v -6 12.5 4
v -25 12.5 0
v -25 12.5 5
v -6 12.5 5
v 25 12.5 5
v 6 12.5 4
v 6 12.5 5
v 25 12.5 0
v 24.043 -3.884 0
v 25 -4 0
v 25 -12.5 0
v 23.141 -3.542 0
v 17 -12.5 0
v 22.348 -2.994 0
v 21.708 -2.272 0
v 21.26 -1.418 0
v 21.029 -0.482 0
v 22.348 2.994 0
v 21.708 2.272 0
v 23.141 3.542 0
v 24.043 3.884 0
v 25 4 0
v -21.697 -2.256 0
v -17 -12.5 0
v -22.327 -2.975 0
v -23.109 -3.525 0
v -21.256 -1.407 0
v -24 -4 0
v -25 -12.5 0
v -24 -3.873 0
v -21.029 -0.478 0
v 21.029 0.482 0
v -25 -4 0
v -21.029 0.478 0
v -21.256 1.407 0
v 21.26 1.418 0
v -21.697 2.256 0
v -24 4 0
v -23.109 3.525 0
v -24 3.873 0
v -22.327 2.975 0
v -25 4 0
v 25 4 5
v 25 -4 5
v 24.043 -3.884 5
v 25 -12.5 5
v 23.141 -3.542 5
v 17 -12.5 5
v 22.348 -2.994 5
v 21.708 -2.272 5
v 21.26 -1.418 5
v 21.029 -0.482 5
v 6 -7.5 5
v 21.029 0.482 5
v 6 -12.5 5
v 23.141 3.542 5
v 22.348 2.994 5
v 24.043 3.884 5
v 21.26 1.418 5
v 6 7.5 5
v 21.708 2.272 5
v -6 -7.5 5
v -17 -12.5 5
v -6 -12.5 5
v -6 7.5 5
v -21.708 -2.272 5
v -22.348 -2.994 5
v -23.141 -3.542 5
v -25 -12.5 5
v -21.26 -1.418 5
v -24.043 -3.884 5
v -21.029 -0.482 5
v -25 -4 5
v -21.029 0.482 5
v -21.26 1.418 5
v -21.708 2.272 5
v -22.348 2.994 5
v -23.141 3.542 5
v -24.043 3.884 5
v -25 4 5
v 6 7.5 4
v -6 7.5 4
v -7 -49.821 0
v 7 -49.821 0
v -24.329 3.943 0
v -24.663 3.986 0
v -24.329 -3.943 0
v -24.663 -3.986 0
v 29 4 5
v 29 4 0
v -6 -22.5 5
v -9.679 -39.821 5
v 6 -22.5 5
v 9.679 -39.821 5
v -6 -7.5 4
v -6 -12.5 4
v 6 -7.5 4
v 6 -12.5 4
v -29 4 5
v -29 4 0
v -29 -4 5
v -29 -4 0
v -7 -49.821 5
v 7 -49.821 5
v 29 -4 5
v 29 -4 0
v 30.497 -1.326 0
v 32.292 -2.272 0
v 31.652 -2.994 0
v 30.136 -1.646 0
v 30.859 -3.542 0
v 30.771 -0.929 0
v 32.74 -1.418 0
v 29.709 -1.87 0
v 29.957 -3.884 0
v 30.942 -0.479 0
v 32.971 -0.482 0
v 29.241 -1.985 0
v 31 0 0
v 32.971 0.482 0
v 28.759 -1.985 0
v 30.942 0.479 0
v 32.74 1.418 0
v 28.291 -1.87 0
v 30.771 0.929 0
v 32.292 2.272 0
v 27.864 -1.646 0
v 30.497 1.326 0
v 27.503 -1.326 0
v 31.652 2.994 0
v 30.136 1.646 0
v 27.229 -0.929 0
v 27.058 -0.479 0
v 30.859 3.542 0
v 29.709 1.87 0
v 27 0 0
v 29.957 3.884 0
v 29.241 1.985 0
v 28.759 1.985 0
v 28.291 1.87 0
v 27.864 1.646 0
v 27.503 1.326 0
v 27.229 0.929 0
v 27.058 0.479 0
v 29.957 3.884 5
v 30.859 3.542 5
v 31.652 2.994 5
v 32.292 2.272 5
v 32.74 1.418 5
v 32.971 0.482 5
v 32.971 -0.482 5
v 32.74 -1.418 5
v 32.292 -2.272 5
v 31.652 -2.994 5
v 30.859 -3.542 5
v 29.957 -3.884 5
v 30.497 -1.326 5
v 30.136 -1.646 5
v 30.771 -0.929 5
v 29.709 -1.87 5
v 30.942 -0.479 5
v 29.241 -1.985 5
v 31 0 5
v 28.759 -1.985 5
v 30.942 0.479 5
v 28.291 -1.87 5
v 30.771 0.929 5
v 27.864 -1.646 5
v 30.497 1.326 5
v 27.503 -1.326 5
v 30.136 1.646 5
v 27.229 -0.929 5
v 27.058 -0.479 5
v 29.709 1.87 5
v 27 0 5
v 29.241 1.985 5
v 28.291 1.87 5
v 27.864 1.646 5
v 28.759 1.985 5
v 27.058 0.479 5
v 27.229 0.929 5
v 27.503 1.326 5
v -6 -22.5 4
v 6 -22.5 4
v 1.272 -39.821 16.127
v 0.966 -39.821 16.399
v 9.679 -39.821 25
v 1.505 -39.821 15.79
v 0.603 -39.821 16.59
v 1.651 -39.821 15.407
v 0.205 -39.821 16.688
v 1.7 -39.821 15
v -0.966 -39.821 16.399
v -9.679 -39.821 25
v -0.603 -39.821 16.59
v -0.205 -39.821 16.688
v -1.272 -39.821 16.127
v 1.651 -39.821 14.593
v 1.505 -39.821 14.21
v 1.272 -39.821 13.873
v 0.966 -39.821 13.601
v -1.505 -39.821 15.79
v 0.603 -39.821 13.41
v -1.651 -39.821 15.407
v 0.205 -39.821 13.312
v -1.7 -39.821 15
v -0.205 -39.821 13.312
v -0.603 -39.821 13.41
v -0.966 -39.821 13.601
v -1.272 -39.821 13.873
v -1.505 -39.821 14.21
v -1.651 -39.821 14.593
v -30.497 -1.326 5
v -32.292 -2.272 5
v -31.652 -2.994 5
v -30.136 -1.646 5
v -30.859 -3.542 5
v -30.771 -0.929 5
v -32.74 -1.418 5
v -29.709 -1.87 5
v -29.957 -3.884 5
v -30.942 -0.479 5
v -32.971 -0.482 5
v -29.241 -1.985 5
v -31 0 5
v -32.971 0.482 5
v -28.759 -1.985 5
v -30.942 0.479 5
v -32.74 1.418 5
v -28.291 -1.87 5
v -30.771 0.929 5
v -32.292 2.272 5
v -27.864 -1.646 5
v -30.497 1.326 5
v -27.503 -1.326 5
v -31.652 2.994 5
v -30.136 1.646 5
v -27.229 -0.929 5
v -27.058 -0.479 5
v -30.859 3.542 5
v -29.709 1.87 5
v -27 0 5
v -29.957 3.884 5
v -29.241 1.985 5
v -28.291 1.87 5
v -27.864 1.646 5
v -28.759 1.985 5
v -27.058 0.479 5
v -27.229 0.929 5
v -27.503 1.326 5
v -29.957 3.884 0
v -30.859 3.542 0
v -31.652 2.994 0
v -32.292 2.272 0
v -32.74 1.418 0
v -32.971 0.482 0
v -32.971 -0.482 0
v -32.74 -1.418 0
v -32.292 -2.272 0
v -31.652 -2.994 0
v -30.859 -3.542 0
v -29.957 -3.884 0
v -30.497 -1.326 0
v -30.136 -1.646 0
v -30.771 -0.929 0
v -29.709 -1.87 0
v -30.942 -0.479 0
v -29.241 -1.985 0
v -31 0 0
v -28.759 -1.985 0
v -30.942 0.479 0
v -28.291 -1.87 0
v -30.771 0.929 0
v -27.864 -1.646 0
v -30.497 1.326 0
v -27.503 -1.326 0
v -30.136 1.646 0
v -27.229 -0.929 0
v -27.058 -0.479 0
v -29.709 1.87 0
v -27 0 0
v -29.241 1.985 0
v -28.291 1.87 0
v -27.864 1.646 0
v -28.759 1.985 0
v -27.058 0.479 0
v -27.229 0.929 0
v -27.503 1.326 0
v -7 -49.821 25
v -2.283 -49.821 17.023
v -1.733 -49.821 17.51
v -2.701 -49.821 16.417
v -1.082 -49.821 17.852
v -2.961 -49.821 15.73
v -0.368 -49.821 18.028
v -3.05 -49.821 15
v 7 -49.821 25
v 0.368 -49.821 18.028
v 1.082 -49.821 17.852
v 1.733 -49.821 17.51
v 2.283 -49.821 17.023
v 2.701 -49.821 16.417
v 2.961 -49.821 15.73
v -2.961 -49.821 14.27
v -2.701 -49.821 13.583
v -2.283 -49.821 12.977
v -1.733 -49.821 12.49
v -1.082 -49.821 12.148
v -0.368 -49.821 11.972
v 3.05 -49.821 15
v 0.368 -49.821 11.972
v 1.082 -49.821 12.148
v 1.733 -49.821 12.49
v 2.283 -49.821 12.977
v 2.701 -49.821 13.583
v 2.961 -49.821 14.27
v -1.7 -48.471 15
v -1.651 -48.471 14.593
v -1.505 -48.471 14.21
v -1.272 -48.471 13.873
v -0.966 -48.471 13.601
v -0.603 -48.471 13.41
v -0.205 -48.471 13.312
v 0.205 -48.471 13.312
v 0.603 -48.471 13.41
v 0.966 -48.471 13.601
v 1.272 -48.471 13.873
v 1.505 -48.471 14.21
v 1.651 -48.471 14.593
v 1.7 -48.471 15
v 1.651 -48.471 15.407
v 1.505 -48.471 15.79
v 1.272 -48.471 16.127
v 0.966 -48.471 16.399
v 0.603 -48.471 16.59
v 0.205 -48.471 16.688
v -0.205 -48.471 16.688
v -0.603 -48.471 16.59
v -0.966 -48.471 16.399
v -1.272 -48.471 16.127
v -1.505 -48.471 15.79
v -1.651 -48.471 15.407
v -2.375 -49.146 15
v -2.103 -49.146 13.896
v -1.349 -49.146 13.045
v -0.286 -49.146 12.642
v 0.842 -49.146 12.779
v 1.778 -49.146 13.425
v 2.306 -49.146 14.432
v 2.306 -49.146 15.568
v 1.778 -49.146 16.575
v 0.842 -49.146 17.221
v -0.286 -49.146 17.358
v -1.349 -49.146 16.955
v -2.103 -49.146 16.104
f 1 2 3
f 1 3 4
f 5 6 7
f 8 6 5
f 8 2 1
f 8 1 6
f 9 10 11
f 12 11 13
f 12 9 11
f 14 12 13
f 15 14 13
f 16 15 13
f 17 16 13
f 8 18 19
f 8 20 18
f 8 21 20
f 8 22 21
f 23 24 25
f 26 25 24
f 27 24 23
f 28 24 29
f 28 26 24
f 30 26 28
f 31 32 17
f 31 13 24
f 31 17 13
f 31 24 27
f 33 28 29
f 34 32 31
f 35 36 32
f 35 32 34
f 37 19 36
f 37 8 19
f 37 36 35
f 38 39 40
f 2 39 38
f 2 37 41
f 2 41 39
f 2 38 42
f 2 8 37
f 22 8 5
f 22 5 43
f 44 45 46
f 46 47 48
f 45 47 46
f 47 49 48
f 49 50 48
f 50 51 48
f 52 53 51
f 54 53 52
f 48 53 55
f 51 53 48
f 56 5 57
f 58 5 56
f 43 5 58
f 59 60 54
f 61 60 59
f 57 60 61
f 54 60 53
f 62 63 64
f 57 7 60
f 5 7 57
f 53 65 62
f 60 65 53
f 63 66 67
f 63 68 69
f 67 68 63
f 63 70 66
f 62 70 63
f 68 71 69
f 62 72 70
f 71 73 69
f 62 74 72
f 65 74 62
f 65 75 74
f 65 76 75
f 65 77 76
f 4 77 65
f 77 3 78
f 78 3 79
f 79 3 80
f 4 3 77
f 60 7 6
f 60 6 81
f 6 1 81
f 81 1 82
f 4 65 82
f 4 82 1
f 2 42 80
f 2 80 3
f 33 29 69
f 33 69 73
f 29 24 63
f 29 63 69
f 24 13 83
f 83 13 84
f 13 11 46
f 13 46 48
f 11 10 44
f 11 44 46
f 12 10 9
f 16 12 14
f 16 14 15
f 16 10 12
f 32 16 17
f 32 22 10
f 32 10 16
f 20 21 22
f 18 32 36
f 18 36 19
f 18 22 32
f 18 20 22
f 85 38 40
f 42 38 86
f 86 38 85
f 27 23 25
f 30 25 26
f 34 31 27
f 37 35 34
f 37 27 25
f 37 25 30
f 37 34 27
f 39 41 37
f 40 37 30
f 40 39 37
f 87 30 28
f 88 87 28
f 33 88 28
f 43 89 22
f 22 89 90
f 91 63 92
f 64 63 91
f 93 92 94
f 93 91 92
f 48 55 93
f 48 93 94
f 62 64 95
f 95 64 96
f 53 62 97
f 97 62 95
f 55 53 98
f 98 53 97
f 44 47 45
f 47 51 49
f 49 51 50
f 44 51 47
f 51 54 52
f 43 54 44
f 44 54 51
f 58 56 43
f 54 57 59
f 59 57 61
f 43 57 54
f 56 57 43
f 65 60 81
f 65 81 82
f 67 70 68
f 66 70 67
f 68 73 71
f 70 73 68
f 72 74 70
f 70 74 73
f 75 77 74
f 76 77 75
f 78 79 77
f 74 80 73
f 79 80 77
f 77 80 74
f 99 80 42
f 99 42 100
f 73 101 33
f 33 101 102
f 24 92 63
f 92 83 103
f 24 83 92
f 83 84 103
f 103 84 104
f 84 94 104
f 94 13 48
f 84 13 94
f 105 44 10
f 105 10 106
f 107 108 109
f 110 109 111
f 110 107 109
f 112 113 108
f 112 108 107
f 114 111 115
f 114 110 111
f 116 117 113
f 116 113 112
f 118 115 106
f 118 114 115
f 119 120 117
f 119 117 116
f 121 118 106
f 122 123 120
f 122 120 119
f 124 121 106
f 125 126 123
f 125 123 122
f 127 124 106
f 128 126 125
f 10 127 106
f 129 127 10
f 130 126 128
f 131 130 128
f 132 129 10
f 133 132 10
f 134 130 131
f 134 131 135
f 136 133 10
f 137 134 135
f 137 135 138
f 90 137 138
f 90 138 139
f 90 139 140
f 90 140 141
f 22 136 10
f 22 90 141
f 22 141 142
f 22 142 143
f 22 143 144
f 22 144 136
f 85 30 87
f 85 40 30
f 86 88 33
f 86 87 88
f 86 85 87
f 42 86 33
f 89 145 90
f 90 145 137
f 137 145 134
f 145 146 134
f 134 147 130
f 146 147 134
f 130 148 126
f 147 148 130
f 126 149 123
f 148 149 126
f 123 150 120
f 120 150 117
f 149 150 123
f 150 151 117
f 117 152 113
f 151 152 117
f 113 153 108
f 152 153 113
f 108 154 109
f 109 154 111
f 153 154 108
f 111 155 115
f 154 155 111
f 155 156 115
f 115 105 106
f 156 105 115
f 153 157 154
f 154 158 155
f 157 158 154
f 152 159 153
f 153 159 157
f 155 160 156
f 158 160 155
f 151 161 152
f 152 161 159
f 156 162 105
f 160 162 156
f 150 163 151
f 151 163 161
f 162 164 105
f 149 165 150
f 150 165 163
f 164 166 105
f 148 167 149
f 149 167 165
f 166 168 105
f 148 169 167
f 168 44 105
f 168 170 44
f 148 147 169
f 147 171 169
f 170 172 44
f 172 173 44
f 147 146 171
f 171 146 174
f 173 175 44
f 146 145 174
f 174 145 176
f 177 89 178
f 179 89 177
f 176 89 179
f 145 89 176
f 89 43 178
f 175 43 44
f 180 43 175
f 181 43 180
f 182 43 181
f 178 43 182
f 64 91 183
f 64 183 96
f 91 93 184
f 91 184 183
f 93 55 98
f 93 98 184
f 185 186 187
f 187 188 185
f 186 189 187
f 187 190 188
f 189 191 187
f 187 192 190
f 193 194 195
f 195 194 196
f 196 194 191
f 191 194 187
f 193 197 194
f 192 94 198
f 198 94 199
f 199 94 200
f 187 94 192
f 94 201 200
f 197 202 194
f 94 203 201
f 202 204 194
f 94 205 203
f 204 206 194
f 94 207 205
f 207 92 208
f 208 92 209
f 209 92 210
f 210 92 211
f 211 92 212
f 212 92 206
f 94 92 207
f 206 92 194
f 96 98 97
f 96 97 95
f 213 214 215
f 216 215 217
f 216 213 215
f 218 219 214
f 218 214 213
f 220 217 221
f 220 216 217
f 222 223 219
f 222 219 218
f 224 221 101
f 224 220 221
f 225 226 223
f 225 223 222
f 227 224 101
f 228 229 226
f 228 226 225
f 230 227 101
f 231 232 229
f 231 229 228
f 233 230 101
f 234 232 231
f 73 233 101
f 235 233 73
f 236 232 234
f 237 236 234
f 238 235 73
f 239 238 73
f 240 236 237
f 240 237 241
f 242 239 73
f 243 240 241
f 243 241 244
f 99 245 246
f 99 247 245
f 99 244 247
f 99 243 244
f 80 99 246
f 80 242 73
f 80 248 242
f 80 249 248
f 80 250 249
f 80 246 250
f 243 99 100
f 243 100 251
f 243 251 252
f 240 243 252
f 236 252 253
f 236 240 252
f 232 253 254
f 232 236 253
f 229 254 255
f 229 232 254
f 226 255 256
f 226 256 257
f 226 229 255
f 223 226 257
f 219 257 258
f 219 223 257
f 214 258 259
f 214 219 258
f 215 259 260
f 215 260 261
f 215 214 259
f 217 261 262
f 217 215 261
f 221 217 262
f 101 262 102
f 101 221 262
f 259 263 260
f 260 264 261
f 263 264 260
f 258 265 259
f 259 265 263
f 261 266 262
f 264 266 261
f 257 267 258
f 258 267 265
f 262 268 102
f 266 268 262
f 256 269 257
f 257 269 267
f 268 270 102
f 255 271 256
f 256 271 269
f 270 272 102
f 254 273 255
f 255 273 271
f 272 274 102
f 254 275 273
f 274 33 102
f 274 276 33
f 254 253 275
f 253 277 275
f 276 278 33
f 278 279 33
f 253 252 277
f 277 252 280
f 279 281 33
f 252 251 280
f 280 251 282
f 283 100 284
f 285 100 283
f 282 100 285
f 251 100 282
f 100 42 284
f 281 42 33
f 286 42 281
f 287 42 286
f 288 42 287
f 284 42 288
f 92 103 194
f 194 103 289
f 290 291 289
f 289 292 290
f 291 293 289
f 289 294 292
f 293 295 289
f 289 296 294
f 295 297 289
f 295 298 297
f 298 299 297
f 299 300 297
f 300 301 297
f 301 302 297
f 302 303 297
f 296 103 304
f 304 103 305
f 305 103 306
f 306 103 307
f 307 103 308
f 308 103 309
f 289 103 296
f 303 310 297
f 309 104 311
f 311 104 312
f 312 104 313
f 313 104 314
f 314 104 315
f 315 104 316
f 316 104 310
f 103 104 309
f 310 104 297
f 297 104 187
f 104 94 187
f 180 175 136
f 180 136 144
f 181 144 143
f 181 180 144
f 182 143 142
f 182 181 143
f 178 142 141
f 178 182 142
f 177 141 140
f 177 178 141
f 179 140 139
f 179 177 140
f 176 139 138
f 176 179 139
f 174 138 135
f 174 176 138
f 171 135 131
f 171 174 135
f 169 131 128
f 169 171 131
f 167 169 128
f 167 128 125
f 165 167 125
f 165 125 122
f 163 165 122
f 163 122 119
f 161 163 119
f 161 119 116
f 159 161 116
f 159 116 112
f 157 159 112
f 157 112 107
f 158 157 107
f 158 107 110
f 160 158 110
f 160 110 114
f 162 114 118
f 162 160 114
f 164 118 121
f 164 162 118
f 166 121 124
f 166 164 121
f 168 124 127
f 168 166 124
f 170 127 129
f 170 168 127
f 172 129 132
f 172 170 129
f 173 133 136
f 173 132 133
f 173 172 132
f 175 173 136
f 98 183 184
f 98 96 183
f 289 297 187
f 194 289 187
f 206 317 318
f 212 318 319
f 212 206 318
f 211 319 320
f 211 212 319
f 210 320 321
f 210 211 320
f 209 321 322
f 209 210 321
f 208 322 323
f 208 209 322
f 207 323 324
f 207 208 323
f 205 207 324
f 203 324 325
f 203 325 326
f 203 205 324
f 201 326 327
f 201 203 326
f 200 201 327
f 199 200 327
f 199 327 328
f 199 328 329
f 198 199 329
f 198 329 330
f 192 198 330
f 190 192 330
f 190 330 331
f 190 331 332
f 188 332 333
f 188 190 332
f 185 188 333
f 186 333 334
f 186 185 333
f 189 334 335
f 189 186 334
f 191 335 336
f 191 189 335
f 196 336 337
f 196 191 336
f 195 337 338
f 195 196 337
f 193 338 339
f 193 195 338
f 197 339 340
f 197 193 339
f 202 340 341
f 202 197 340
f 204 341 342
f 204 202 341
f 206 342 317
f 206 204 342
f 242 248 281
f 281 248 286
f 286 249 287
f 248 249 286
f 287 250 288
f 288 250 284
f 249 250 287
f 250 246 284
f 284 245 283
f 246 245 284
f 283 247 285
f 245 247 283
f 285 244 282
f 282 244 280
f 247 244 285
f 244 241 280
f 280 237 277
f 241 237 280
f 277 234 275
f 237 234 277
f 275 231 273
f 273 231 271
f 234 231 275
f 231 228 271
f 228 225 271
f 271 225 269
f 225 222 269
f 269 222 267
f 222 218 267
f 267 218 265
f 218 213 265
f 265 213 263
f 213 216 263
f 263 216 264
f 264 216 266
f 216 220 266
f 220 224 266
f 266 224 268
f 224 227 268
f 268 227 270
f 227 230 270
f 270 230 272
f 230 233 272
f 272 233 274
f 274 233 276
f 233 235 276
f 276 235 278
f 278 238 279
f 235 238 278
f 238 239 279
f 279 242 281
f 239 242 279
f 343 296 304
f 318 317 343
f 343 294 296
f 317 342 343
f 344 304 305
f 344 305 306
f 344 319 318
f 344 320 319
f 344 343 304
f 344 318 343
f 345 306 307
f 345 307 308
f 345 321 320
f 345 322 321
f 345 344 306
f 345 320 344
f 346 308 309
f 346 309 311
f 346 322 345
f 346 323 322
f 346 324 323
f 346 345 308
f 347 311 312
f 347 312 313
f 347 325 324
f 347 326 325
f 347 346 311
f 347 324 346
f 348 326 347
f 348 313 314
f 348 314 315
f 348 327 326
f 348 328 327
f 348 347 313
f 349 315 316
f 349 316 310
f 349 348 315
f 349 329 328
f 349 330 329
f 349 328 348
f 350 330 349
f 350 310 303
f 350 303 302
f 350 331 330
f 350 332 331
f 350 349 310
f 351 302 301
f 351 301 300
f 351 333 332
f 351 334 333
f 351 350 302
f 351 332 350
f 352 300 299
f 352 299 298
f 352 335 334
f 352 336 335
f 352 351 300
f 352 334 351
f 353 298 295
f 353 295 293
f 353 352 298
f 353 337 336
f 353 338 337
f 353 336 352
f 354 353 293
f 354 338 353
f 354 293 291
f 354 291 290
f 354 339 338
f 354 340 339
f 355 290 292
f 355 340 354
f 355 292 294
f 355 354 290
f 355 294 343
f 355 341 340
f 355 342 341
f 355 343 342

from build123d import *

# Parameters (mm, degrees)
SKETCH_W         = 50
SKETCH_H         = 25
PAD_DEPTH        = 5
PAD001_DEPTH     = 5
SKETCH002_R      = 2
POCKET_DEPTH     = 131.713272
SKETCH004_W      = 12
SKETCH004_H      = 5
POCKET001_DEPTH  = 1
PAD002_DEPTH     = 5
SKETCH008_W      = 8
SKETCH008_H      = 10
POCKET002_DEPTH  = 1
SKETCH009_W      = 12
SKETCH009_H      = 10
POCKET003_DEPTH  = 1
PAD003_DEPTH     = 20
HOLE_D           = 3.4
HOLE_DEPTH       = 25
HOLE_CSINK_D     = 6.1
HOLE_CSINK_ANGLE = 90
HOLE_TIPS_R      = 1.7


with BuildPart() as part:
    # Sketch → Pad (new body)
    with BuildSketch(Plane.XY):
        Rectangle(SKETCH_W, SKETCH_H)
    extrude(amount=PAD_DEPTH)

    # Sketch001 (on Face6 of Pad) → Pad001 (join)
    with BuildSketch(Plane.XY.offset(5)):
        with BuildLine():
            ThreePointArc((-25, -4), (-21, 0), (-25, 4))
            Line((-25, 4), (-29, 4))
            ThreePointArc((-29, 4), (-33, 0), (-29, -4))
            Line((-25, -4), (-29, -4))
        make_face()
    pad001 = extrude(amount=-PAD001_DEPTH)

    # Sketch002 (on Face12 of Pad001) → Pocket (cut, through all)
    with BuildSketch(Plane.XY.offset(5)):
        with Locations((-29, 0)):
            Circle(SKETCH002_R)
    pocket = extrude(amount=-POCKET_DEPTH, mode=Mode.SUBTRACT)

    # Mirrored: Pad001 across Sketch001 V_Axis
    add(pad001.mirror(Plane(origin=(0, 0, 5), x_dir=(0, 0, 1), z_dir=(1, 0, 0))))

    # Mirrored001: Pocket across Sketch002 V_Axis
    add(pocket.mirror(Plane(origin=(0, 0, 5), x_dir=(0, 0, 1), z_dir=(1, 0, 0))), mode=Mode.SUBTRACT)

    # Sketch004 (on Face5 of Mirrored001) → Pocket001 (cut)
    with BuildSketch(Plane.XY.offset(5)):
        with Locations((0, 10)):
            Rectangle(SKETCH004_W, SKETCH004_H)
    pocket001 = extrude(amount=-POCKET001_DEPTH, mode=Mode.SUBTRACT)

    # Mirrored002: Pocket001 across Sketch004 H_Axis
    add(pocket001.mirror(Plane(origin=(0, 0, 5), x_dir=(0, 0, 1), z_dir=(0, 1, 0))), mode=Mode.SUBTRACT)

    # Sketch005 (on Face2 of Mirrored002) → Pad002 (join)
    with BuildSketch(Plane(origin=(0, 0, 0), x_dir=(1, 0, 0), z_dir=(0, 0, -1))):
        Polygon((-17, 12.5), (-7, 49.820508), (7, 49.820508), (17, 12.5), align=None)
    extrude(amount=-PAD002_DEPTH)

    # Sketch008 → Pocket002 (cut)
    with BuildSketch(Plane(origin=(-25, 0, 0), x_dir=(0, -1, 0), z_dir=(-1, 0, 0))):
        with Locations((0, -5)):
            Rectangle(SKETCH008_W, SKETCH008_H)
    extrude(amount=-POCKET002_DEPTH, mode=Mode.SUBTRACT)

    # Sketch009 (on Face17 of Pad002) → Pocket003 (cut)
    with BuildSketch(Plane.XY.offset(5)):
        with Locations((0, -17.5)):
            Rectangle(SKETCH009_W, SKETCH009_H)
    extrude(amount=-POCKET003_DEPTH, mode=Mode.SUBTRACT)

    # Sketch010 (on Face19 of Pocket003) → Pad003 (join)
    with BuildSketch(Plane.XY.offset(5)):
        Polygon((-7, -49.820508), (7, -49.820508), (9.679492, -39.820508), (-9.679492, -39.820508), align=None)
    extrude(amount=PAD003_DEPTH)

    # Hole
    with Locations(Plane.XZ.offset(49.820508)):
        with Locations((0, 15)):
            CounterSinkHole(HOLE_D / 2, HOLE_CSINK_D / 2, depth=HOLE_DEPTH, counter_sink_angle=HOLE_CSINK_ANGLE)

    # Hole tips → Hole tip 1 section 0
    with BuildSketch(Plane.XZ.offset(24.820508), mode=Mode.PRIVATE) as hole_tip_1_s0:
        with Locations((0, 15)):
            Circle(HOLE_TIPS_R)
    loft([hole_tip_1_s0.sketch, Vertex(0, -23.799045, 15)], mode=Mode.SUBTRACT)


solid = part.part
